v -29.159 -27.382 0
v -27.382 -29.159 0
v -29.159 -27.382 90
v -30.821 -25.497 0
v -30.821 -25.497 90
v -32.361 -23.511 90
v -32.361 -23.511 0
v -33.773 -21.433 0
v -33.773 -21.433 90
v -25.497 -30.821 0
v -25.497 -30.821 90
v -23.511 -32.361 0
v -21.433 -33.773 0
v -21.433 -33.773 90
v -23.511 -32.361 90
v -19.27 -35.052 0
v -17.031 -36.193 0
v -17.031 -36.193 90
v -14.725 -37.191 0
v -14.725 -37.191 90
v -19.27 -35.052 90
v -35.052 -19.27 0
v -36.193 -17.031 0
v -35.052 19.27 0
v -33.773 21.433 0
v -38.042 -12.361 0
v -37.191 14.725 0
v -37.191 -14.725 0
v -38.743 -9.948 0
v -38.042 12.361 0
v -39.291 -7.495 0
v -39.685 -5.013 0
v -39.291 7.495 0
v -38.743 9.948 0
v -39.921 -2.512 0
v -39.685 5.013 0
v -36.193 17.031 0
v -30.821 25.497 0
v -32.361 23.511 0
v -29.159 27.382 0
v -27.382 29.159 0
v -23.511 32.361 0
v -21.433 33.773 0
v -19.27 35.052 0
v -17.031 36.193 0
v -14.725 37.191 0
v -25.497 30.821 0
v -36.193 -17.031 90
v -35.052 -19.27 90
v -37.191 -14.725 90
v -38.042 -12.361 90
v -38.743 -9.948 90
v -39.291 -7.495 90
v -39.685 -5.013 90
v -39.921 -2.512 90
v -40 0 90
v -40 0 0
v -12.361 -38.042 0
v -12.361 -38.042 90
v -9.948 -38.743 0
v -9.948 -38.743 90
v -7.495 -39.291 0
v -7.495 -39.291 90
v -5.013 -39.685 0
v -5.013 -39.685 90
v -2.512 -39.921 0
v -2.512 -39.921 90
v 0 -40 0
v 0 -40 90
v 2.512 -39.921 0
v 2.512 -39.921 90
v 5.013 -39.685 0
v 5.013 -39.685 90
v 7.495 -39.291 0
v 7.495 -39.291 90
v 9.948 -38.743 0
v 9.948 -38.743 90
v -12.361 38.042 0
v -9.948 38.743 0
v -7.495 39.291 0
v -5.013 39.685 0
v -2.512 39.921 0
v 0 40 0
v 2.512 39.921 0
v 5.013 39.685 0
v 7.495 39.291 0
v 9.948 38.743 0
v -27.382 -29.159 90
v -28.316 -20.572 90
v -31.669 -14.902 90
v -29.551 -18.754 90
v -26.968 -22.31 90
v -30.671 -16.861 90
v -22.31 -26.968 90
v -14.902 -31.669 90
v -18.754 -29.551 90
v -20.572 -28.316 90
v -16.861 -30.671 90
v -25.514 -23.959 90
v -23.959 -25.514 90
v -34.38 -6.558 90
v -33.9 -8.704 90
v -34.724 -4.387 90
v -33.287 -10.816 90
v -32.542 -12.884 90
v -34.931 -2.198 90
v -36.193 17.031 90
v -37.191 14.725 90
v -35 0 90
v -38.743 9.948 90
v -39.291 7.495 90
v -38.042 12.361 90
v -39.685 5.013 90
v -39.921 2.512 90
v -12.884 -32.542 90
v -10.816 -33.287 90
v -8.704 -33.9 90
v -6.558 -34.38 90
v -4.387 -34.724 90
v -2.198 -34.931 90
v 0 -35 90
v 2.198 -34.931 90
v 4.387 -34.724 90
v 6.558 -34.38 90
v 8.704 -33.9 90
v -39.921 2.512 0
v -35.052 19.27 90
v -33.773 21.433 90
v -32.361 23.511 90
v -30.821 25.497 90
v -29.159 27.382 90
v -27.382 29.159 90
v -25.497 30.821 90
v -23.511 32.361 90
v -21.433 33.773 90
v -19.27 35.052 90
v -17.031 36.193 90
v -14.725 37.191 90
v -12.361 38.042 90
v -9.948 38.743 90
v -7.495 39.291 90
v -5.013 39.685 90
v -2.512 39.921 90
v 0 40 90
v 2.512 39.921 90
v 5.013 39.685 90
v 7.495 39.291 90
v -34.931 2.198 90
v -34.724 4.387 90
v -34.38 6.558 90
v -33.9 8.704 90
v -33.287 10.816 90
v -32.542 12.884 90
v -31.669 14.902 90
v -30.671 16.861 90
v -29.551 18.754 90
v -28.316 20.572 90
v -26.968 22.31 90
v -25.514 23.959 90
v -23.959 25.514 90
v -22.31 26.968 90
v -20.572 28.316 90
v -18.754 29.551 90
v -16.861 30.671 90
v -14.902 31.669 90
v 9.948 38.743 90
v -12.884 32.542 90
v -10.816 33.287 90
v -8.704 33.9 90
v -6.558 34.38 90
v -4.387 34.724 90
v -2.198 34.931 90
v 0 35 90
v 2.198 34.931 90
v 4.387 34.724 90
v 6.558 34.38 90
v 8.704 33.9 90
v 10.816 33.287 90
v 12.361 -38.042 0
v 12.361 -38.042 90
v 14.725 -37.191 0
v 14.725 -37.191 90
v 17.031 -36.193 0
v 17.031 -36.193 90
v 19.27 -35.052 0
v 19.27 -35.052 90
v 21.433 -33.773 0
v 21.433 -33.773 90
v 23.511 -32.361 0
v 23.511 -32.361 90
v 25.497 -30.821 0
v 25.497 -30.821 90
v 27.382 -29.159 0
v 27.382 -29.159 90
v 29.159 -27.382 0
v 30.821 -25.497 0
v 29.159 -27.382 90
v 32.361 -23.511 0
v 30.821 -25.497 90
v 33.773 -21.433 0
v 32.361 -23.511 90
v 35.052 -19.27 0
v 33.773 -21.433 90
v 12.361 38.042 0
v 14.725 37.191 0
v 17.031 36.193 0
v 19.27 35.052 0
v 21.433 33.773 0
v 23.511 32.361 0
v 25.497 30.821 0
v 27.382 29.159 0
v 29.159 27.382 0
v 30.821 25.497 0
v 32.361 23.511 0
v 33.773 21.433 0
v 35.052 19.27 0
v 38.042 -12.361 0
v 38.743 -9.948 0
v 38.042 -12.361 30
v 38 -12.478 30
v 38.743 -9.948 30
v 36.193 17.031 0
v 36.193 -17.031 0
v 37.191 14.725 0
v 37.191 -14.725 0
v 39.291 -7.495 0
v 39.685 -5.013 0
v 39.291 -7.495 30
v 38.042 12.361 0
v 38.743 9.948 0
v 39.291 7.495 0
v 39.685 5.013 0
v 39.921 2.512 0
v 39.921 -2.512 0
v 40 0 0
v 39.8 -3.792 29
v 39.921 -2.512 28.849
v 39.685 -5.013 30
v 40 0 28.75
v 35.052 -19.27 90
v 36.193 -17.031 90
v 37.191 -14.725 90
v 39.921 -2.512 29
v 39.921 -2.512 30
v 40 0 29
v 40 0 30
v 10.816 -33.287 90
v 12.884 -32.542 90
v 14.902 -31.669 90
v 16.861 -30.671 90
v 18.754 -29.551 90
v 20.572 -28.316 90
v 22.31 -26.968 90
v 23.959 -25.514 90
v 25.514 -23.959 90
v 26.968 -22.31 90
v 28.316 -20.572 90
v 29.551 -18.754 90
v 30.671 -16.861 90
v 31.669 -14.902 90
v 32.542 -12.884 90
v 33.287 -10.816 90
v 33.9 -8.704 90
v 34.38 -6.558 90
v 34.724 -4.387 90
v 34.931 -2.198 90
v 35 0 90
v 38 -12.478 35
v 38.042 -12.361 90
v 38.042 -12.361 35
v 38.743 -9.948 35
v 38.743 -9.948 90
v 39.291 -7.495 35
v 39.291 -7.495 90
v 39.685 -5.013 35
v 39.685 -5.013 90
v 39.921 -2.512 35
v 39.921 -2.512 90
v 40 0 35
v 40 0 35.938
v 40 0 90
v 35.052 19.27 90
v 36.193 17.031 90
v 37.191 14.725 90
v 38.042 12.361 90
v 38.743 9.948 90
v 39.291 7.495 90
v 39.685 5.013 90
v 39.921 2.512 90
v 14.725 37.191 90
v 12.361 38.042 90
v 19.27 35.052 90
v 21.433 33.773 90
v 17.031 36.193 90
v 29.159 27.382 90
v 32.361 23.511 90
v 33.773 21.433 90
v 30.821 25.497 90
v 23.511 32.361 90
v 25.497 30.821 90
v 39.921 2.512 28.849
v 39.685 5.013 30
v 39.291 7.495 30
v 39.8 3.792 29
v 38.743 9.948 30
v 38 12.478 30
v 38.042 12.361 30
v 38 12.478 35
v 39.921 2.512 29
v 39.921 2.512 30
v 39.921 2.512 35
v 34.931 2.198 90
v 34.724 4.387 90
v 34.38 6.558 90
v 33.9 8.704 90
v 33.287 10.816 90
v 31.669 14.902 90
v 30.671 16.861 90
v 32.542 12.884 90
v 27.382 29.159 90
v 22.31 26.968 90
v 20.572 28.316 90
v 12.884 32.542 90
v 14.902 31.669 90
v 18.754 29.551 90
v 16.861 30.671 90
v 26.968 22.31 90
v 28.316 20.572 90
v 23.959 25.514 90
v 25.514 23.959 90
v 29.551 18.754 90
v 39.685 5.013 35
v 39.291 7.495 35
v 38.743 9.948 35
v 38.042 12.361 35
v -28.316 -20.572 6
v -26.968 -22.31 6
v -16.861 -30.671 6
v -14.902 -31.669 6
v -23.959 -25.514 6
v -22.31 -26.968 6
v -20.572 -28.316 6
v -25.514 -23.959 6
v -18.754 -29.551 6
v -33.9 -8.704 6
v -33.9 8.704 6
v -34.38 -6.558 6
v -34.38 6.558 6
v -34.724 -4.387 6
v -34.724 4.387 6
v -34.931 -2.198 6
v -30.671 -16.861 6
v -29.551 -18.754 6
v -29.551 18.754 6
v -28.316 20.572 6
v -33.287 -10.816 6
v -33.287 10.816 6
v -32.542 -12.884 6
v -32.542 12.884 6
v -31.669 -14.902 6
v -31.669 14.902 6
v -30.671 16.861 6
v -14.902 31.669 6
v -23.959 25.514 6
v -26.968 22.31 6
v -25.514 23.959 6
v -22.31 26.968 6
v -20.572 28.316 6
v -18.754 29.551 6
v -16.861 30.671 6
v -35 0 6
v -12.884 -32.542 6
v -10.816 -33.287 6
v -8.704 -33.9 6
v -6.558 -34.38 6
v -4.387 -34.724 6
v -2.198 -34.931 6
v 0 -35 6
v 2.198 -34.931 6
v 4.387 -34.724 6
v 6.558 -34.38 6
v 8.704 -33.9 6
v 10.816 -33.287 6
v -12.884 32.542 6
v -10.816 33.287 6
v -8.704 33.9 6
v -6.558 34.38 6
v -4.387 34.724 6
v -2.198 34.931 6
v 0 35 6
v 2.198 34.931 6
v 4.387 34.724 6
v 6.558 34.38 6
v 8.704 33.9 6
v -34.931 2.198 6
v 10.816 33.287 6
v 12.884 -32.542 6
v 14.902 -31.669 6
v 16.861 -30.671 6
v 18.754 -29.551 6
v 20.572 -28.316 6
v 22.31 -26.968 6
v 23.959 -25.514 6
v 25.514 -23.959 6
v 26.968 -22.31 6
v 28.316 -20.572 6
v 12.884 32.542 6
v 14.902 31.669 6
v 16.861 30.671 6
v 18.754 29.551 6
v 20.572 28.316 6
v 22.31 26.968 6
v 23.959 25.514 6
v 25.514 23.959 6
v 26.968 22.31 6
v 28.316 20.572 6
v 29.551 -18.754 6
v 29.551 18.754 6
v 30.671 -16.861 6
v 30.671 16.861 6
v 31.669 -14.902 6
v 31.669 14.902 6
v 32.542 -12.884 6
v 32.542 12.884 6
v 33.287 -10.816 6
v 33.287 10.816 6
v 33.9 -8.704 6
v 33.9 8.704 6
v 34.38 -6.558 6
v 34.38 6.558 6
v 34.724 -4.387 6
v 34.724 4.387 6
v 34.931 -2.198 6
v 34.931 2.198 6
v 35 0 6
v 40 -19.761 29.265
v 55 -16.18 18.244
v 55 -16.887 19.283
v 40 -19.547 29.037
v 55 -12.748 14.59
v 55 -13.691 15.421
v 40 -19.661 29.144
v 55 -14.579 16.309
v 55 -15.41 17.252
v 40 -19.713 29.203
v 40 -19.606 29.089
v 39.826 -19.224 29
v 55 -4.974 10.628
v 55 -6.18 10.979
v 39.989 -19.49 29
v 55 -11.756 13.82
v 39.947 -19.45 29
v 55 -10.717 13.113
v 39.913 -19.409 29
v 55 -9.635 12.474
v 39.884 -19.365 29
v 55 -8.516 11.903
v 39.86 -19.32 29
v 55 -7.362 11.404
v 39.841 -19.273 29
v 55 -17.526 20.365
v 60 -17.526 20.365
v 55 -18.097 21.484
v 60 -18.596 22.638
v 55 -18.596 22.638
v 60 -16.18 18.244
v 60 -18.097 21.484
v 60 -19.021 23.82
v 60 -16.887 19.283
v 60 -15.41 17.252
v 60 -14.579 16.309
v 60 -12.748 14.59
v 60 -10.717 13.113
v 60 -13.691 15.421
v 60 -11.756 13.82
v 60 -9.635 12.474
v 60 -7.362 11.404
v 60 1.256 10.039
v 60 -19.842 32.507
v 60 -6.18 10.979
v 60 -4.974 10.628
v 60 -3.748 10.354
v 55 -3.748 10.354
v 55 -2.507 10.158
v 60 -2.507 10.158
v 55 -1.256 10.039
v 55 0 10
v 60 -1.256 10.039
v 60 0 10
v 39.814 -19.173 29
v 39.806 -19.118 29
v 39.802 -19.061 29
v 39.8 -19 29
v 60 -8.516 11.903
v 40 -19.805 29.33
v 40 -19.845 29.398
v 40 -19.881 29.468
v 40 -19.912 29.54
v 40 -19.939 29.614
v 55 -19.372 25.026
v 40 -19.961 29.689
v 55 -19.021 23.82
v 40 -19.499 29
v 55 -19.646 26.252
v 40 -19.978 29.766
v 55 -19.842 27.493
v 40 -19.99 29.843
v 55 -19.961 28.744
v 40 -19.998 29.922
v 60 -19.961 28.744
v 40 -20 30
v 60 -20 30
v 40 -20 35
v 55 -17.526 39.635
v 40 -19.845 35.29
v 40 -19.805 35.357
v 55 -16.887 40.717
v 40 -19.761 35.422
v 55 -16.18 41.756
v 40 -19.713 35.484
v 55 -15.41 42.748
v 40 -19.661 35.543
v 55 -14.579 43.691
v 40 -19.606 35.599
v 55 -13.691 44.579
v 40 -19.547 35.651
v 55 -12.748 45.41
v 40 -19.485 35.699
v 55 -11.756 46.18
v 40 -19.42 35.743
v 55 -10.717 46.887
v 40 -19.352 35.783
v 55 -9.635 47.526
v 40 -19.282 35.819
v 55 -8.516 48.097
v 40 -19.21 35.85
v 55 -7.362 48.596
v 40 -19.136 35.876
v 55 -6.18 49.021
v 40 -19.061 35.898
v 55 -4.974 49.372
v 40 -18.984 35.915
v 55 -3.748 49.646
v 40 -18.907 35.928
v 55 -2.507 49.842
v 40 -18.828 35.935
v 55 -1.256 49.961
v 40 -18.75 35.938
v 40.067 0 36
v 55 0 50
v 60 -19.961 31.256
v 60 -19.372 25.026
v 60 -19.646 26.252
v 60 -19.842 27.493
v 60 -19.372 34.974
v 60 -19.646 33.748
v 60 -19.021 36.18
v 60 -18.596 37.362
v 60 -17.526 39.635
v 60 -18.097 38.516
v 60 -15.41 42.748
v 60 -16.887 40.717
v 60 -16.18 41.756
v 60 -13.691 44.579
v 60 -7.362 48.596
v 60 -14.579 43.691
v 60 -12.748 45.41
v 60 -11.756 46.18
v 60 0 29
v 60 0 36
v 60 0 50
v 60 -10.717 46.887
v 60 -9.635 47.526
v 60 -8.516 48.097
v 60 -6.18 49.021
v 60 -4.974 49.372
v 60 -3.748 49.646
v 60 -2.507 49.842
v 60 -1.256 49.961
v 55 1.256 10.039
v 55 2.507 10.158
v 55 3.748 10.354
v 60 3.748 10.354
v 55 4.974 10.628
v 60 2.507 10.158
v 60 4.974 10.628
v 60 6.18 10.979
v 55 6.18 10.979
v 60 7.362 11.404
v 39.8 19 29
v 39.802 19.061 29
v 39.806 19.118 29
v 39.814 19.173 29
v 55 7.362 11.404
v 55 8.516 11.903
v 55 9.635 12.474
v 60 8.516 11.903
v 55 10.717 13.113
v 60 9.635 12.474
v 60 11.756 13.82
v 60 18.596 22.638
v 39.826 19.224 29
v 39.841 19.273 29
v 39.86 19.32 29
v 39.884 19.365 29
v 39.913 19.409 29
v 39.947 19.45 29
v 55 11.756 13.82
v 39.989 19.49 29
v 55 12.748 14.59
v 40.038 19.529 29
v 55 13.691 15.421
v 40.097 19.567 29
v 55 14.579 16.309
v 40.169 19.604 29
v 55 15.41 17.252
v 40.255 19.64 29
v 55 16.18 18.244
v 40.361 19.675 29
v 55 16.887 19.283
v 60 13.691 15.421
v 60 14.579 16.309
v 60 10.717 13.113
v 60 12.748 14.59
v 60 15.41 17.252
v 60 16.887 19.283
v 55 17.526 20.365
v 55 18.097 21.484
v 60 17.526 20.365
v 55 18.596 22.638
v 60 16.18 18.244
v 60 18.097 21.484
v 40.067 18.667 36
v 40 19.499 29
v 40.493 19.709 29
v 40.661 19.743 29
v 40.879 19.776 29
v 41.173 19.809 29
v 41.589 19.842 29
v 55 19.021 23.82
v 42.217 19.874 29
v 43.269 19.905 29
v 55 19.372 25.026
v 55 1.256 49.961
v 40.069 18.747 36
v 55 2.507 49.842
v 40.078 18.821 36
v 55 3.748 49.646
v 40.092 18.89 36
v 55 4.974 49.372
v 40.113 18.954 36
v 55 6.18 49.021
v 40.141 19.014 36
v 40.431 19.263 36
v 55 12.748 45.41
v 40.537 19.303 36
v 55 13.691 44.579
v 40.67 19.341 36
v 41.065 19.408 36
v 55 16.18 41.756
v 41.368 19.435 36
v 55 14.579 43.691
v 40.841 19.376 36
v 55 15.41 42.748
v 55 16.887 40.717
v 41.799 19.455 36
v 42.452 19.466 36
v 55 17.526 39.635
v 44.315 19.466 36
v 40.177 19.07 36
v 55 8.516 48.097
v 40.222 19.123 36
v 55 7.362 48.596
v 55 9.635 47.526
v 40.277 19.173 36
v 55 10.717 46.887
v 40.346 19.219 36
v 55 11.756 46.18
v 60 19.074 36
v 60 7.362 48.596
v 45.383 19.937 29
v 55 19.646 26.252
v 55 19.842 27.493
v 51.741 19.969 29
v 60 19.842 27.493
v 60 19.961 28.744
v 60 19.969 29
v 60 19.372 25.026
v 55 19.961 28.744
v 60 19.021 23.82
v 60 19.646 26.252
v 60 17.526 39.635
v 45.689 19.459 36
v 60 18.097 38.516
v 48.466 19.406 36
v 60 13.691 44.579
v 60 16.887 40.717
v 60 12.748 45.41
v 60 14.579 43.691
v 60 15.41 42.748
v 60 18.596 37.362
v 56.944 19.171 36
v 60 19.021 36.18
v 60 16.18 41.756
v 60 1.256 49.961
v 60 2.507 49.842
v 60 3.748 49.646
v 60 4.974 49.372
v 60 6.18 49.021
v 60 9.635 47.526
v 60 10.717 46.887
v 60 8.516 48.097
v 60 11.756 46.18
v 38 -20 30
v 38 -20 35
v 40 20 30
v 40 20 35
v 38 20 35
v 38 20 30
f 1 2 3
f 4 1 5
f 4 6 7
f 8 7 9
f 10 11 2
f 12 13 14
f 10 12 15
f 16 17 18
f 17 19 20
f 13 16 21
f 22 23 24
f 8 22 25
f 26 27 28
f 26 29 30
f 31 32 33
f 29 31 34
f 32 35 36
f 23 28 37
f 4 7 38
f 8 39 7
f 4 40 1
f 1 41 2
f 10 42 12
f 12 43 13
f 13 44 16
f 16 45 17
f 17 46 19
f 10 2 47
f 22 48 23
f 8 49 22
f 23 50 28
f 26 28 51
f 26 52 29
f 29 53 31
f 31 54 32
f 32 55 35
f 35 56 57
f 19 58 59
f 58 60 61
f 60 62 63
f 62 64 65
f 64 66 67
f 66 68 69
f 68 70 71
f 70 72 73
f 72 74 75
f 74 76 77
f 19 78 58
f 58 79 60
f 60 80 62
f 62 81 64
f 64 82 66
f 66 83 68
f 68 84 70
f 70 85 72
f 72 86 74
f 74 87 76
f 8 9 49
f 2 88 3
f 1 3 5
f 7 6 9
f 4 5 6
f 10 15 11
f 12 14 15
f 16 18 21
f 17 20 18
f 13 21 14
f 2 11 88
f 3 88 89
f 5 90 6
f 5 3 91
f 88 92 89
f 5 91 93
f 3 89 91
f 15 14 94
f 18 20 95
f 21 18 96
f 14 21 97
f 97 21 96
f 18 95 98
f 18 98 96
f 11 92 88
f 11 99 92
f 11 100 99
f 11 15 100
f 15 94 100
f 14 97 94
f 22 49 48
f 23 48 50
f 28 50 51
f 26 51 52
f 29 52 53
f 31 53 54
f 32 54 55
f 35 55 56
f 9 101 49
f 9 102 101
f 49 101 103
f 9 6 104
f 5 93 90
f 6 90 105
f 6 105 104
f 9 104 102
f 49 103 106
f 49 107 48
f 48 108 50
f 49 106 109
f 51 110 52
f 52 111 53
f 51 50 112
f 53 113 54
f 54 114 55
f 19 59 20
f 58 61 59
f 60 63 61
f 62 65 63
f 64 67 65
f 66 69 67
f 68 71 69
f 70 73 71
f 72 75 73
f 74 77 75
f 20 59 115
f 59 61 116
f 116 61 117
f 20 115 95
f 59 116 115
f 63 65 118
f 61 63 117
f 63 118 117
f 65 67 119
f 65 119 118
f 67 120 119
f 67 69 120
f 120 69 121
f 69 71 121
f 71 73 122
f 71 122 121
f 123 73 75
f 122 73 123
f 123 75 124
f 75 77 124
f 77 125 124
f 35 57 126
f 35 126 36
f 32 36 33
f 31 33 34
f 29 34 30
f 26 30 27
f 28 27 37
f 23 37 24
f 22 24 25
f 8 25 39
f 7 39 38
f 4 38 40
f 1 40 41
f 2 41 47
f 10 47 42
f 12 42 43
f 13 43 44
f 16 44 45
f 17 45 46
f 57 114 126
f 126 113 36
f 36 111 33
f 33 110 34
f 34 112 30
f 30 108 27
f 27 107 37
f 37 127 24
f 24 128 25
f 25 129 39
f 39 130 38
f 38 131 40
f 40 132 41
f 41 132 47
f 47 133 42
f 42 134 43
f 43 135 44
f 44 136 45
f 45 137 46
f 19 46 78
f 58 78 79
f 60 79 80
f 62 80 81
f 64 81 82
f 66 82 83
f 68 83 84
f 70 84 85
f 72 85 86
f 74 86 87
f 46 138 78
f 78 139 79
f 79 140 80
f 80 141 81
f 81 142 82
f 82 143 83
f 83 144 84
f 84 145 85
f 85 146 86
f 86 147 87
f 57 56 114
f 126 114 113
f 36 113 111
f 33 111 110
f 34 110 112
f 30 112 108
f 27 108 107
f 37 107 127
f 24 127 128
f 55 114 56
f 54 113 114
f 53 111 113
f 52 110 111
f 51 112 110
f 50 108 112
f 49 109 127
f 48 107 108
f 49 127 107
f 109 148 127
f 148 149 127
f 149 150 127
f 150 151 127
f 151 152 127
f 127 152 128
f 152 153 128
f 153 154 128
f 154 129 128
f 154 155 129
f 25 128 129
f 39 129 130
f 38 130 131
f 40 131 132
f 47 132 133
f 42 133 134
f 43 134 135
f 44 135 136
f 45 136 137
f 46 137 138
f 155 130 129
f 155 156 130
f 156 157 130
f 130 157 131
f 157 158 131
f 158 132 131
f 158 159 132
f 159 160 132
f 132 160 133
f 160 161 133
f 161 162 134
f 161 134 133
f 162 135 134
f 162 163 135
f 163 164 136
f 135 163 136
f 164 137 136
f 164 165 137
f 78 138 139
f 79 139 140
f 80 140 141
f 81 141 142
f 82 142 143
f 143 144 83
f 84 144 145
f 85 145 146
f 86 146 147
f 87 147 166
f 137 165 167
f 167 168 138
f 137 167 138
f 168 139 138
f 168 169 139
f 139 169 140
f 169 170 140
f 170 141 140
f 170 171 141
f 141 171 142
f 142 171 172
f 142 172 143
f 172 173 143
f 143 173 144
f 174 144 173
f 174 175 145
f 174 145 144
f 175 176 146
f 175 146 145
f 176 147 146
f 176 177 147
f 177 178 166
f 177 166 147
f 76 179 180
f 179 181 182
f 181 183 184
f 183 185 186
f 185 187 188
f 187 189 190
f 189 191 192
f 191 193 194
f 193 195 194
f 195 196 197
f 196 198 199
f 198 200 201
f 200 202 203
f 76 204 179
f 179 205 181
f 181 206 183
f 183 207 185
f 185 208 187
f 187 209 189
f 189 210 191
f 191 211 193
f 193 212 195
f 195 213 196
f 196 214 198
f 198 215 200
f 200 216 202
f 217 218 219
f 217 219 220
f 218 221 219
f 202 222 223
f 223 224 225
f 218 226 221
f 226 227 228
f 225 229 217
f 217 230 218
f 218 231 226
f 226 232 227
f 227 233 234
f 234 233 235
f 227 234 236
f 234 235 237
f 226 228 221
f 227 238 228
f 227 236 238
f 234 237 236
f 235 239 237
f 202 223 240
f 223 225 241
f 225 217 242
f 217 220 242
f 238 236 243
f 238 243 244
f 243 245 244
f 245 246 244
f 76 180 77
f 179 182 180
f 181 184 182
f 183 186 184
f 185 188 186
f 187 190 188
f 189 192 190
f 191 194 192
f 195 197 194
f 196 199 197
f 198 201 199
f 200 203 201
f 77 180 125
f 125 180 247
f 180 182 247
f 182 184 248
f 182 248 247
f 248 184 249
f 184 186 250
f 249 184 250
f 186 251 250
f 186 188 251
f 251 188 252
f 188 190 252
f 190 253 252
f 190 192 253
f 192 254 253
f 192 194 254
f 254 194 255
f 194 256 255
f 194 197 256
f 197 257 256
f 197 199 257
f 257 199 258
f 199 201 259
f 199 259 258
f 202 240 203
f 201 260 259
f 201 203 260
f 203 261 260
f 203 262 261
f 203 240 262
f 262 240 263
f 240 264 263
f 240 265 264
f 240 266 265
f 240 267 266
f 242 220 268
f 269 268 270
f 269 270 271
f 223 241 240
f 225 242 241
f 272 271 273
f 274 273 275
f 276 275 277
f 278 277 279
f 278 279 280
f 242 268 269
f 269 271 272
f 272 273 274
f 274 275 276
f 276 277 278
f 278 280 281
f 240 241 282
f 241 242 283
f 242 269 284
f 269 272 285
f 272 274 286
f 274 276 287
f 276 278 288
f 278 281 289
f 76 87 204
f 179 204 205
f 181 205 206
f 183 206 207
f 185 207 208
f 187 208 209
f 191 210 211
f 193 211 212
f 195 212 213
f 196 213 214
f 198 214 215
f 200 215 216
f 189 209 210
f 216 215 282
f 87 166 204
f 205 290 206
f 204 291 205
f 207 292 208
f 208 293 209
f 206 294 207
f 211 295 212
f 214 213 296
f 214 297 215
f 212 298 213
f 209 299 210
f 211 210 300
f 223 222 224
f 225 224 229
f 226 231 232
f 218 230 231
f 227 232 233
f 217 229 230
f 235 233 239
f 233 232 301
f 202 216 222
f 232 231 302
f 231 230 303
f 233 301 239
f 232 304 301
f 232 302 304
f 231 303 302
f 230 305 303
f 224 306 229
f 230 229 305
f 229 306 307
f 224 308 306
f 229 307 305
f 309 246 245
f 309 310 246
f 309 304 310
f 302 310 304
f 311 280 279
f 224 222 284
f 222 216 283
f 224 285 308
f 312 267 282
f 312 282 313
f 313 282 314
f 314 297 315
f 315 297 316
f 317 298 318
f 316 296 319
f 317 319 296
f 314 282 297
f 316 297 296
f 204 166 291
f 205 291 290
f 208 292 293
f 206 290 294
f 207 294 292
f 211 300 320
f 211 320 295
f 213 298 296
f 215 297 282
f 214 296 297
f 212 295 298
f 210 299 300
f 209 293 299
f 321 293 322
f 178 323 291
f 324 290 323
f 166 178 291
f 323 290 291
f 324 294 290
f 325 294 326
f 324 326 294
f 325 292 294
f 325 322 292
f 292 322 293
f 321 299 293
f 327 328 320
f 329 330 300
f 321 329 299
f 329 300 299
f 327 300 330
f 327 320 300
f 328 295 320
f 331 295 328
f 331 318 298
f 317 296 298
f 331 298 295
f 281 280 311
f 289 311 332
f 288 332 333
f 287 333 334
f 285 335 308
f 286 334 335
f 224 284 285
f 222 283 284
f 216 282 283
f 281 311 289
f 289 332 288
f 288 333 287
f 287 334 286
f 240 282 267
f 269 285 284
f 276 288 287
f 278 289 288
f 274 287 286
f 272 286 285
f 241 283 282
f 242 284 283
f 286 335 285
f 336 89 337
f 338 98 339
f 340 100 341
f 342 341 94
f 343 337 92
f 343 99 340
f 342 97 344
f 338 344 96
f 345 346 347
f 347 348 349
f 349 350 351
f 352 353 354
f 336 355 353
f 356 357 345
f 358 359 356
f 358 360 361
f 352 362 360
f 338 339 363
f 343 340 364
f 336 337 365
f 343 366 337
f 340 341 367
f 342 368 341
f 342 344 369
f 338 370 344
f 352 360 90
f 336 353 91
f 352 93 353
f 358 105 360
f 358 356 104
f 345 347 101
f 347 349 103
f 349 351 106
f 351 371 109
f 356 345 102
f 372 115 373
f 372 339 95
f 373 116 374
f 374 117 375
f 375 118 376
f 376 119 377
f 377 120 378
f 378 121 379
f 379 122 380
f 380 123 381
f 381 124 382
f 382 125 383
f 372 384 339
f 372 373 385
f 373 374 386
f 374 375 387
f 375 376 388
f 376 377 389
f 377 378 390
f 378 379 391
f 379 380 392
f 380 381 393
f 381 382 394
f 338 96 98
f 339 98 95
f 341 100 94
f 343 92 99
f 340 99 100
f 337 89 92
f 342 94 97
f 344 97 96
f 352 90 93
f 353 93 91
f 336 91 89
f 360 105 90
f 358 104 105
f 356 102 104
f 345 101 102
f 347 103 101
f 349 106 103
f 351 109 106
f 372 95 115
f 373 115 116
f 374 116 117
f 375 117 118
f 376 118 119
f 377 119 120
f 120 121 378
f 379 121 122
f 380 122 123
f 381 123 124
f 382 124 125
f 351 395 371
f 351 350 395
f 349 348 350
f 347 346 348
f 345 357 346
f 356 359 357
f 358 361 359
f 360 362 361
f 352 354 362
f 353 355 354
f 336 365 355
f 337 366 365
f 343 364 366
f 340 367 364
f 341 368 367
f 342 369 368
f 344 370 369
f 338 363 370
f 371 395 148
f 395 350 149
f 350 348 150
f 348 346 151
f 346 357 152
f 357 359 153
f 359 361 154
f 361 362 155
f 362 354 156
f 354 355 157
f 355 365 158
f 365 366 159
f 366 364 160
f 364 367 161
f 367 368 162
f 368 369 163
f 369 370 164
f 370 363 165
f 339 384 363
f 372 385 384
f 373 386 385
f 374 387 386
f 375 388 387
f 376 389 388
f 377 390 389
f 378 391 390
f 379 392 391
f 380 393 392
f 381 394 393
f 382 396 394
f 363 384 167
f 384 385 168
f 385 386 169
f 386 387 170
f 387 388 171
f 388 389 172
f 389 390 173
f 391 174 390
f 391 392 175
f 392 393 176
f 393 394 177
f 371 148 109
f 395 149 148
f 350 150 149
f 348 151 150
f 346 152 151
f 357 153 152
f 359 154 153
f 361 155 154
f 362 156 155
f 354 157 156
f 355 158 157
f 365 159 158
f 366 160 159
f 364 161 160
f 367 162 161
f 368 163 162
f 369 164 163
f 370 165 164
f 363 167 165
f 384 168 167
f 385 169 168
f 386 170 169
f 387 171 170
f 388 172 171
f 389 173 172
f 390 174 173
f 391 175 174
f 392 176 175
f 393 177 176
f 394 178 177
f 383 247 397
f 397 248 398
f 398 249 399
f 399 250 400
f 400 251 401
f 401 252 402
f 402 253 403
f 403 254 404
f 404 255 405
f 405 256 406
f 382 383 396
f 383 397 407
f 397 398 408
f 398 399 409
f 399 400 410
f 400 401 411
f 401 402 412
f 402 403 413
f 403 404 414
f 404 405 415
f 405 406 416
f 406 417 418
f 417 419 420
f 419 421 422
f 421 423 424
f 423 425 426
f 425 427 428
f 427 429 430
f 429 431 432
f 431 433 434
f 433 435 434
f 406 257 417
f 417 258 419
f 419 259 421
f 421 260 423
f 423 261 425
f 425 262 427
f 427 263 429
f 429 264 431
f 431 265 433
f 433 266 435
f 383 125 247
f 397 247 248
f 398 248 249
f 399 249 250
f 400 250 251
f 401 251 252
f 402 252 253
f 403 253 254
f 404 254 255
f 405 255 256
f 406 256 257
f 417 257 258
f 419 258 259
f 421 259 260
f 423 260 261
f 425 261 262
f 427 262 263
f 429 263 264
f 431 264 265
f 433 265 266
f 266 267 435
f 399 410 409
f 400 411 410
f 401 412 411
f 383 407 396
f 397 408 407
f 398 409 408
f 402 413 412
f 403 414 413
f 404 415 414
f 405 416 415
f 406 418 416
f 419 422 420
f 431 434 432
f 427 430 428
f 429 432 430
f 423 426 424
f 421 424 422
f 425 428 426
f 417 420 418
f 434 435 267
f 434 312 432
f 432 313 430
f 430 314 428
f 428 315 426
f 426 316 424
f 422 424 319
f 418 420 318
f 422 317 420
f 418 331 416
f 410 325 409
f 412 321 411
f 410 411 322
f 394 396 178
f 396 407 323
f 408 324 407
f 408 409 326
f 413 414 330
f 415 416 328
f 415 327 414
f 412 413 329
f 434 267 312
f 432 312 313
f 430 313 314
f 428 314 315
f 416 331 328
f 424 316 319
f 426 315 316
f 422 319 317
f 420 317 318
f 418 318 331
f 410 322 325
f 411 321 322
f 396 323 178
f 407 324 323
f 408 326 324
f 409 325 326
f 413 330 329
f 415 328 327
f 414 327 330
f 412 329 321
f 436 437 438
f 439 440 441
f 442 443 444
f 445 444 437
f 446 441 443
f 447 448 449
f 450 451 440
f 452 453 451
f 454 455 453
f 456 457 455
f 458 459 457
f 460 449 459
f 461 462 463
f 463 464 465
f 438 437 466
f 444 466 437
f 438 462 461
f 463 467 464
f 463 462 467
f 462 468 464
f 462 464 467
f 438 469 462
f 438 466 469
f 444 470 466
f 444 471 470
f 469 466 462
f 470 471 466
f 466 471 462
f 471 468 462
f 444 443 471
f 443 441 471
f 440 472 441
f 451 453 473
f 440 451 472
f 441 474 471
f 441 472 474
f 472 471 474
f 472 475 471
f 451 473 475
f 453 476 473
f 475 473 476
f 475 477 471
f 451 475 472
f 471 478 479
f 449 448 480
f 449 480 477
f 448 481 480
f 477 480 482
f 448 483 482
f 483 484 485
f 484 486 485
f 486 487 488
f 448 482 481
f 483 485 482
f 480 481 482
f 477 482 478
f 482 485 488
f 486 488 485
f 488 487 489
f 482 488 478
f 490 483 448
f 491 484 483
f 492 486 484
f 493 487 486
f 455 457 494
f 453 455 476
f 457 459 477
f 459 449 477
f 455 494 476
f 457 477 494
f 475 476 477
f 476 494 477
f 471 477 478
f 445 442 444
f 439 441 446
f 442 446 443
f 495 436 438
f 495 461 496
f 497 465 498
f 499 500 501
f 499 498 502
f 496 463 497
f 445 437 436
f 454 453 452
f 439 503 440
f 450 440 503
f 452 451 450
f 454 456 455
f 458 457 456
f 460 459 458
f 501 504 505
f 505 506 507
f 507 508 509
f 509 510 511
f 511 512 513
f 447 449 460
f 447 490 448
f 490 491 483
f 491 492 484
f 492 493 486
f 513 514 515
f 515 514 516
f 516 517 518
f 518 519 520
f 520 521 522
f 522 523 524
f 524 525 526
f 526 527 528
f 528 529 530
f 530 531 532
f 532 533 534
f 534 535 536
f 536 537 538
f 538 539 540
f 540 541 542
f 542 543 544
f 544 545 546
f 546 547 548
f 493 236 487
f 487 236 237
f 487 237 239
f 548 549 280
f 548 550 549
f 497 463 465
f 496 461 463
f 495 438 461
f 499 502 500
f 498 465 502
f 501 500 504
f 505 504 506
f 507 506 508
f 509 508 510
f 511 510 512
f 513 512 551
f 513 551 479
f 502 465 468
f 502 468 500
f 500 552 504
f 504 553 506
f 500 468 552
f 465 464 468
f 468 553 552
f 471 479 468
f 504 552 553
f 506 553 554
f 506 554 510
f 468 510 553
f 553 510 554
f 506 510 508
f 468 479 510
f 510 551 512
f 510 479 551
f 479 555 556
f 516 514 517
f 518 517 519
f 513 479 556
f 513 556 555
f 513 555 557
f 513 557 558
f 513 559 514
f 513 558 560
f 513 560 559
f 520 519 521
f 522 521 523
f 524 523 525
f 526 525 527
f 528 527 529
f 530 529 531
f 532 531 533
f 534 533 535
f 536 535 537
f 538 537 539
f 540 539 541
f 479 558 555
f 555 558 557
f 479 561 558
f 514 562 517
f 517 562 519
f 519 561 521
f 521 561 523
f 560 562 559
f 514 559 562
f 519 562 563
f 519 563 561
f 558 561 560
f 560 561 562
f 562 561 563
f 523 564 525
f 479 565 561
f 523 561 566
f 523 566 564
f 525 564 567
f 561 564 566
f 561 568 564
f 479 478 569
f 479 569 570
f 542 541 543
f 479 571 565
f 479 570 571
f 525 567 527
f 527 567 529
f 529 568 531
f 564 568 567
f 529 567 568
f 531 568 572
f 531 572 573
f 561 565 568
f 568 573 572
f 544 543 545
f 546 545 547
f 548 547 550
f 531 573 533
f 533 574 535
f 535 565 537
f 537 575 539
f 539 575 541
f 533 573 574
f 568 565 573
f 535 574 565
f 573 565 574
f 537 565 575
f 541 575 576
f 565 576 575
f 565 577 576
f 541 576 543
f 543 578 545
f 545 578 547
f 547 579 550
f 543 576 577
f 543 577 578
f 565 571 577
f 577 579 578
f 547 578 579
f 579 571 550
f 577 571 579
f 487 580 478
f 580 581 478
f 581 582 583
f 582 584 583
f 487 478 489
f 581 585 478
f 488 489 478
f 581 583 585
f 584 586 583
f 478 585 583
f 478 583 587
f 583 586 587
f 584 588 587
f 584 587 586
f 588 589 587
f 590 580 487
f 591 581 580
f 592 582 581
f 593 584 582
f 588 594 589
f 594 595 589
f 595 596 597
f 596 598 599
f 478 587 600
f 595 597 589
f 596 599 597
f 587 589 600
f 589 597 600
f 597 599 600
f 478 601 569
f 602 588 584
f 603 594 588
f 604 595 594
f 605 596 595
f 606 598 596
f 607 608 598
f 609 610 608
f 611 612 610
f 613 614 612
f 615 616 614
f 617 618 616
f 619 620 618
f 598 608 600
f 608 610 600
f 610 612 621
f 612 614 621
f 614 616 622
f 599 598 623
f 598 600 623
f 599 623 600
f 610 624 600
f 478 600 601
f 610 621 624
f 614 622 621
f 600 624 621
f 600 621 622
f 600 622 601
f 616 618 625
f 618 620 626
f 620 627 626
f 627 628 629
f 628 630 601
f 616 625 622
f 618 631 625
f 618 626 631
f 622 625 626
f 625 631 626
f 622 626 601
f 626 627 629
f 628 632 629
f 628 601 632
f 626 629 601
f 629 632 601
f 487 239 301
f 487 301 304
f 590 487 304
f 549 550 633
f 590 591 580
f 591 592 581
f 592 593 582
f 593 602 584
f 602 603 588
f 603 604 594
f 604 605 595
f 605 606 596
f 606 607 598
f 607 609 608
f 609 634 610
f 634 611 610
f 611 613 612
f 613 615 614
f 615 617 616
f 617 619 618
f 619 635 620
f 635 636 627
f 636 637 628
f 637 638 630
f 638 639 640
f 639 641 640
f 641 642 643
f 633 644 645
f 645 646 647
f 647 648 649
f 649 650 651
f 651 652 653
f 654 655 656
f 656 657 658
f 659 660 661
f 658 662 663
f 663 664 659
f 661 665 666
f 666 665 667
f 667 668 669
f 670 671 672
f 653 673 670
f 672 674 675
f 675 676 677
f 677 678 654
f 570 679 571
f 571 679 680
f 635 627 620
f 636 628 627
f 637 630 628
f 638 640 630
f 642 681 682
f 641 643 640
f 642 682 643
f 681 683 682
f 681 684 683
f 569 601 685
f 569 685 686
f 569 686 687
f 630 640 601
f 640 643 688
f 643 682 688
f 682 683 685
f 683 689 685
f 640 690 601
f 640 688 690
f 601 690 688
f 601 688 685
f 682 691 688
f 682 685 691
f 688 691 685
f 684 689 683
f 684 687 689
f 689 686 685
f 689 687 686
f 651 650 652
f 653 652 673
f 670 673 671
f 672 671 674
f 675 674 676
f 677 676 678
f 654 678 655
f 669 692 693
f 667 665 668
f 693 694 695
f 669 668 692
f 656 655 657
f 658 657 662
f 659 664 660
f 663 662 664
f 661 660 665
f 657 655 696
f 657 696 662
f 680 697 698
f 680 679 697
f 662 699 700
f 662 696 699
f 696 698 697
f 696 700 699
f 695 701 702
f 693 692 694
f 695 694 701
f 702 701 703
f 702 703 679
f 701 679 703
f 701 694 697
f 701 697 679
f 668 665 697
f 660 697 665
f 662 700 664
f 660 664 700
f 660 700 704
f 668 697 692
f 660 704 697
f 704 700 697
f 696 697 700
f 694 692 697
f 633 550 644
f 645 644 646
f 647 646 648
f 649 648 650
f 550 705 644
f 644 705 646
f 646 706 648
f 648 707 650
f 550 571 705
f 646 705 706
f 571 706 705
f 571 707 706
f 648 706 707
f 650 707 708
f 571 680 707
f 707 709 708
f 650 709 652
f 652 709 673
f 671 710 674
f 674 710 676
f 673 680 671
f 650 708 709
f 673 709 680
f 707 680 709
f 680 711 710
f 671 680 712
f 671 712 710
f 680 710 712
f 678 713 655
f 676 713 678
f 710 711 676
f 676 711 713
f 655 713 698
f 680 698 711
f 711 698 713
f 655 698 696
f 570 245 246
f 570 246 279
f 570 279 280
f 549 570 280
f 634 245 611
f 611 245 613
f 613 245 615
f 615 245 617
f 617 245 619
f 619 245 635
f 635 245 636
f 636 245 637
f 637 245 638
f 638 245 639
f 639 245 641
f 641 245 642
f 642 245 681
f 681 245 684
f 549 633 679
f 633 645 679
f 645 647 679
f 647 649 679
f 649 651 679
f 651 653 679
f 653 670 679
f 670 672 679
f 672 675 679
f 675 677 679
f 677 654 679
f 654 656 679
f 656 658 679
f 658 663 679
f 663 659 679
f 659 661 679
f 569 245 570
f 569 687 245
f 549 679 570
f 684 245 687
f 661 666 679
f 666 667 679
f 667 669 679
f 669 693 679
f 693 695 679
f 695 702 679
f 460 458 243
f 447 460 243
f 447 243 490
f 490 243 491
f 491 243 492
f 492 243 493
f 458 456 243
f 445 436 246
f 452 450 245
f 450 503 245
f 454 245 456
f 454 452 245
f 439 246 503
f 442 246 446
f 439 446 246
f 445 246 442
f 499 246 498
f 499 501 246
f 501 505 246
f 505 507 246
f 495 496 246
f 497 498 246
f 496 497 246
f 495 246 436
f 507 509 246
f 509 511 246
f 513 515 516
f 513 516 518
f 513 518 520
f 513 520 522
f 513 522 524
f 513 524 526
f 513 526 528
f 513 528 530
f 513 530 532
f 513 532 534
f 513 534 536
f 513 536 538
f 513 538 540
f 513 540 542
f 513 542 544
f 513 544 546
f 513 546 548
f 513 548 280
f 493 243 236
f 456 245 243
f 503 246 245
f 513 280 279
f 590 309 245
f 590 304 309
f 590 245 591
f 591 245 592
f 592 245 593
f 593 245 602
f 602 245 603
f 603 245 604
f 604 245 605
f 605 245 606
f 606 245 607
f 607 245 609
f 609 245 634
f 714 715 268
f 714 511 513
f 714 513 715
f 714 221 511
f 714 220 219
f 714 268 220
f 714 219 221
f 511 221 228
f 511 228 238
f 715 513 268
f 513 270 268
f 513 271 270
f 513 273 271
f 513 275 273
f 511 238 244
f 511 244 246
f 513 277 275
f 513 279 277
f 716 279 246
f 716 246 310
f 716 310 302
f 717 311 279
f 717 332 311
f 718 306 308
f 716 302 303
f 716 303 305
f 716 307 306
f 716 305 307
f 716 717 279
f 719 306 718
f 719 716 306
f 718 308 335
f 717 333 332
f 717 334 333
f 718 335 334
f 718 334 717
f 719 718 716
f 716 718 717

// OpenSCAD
// パラメータ設定
outer_dia = 80;
inner_dia = 70;
height = 90;
bottom_thickness = 6;
wall_thickness = (outer_dia - inner_dia) / 2;

handle_width_inner = 25;
handle_height_inner = 30;
handle_thickness = 5;

$fn = 100;

union() {
    // --- 本体 ---
    difference() {
        // 外殻
        cylinder(d = outer_dia, h = height);
        
        // 内側の中空部分 (底面の厚みを考慮して上にずらす)
        translate([0, 0, bottom_thickness])
            cylinder(d = inner_dia, h = height);
    }

    // --- 取手 (+X軸方向) ---
    // 取手を高さ中央に配置
    translate([outer_dia/2, 0, height/2 - handle_height_inner/2]) {
        difference() {
            // 取手の外形 (D字形状)
            hull() {
                // 本体接続部の矩形
                translate([-1, -handle_height_inner/2 - handle_thickness, 0])
                    cube([1, handle_height_inner + handle_thickness * 2, handle_thickness]);
                
                // 外側の半円部分を形成するための円柱
                translate([handle_width_inner/2 + handle_thickness, 0, 0])
                    rotate([0, 90, 0])
                    cylinder(d = handle_height_inner + handle_thickness * 2, h = handle_thickness, center = true);
            }

            // 取手の内側空間 (指が入る部分)
            translate([0, 0, -1])
                cube([handle_width_inner + 1, handle_height_inner, handle_thickness + 2]);
            
            // D字の形状を整えるため、本体側へ突き抜けた部分をカット
            translate([-10, -handle_height_inner/2 - handle_thickness, -1])
                cube([10, handle_height_inner + handle_thickness * 2, handle_thickness + 2]);
        }
        
        // 取っ手の接続を確実にするための補強ブロック
        translate([-2, -handle_height_inner/2 - handle_thickness, 0])
            cube([2, handle_height_inner + handle_thickness * 2, handle_thickness]);
    }
}
